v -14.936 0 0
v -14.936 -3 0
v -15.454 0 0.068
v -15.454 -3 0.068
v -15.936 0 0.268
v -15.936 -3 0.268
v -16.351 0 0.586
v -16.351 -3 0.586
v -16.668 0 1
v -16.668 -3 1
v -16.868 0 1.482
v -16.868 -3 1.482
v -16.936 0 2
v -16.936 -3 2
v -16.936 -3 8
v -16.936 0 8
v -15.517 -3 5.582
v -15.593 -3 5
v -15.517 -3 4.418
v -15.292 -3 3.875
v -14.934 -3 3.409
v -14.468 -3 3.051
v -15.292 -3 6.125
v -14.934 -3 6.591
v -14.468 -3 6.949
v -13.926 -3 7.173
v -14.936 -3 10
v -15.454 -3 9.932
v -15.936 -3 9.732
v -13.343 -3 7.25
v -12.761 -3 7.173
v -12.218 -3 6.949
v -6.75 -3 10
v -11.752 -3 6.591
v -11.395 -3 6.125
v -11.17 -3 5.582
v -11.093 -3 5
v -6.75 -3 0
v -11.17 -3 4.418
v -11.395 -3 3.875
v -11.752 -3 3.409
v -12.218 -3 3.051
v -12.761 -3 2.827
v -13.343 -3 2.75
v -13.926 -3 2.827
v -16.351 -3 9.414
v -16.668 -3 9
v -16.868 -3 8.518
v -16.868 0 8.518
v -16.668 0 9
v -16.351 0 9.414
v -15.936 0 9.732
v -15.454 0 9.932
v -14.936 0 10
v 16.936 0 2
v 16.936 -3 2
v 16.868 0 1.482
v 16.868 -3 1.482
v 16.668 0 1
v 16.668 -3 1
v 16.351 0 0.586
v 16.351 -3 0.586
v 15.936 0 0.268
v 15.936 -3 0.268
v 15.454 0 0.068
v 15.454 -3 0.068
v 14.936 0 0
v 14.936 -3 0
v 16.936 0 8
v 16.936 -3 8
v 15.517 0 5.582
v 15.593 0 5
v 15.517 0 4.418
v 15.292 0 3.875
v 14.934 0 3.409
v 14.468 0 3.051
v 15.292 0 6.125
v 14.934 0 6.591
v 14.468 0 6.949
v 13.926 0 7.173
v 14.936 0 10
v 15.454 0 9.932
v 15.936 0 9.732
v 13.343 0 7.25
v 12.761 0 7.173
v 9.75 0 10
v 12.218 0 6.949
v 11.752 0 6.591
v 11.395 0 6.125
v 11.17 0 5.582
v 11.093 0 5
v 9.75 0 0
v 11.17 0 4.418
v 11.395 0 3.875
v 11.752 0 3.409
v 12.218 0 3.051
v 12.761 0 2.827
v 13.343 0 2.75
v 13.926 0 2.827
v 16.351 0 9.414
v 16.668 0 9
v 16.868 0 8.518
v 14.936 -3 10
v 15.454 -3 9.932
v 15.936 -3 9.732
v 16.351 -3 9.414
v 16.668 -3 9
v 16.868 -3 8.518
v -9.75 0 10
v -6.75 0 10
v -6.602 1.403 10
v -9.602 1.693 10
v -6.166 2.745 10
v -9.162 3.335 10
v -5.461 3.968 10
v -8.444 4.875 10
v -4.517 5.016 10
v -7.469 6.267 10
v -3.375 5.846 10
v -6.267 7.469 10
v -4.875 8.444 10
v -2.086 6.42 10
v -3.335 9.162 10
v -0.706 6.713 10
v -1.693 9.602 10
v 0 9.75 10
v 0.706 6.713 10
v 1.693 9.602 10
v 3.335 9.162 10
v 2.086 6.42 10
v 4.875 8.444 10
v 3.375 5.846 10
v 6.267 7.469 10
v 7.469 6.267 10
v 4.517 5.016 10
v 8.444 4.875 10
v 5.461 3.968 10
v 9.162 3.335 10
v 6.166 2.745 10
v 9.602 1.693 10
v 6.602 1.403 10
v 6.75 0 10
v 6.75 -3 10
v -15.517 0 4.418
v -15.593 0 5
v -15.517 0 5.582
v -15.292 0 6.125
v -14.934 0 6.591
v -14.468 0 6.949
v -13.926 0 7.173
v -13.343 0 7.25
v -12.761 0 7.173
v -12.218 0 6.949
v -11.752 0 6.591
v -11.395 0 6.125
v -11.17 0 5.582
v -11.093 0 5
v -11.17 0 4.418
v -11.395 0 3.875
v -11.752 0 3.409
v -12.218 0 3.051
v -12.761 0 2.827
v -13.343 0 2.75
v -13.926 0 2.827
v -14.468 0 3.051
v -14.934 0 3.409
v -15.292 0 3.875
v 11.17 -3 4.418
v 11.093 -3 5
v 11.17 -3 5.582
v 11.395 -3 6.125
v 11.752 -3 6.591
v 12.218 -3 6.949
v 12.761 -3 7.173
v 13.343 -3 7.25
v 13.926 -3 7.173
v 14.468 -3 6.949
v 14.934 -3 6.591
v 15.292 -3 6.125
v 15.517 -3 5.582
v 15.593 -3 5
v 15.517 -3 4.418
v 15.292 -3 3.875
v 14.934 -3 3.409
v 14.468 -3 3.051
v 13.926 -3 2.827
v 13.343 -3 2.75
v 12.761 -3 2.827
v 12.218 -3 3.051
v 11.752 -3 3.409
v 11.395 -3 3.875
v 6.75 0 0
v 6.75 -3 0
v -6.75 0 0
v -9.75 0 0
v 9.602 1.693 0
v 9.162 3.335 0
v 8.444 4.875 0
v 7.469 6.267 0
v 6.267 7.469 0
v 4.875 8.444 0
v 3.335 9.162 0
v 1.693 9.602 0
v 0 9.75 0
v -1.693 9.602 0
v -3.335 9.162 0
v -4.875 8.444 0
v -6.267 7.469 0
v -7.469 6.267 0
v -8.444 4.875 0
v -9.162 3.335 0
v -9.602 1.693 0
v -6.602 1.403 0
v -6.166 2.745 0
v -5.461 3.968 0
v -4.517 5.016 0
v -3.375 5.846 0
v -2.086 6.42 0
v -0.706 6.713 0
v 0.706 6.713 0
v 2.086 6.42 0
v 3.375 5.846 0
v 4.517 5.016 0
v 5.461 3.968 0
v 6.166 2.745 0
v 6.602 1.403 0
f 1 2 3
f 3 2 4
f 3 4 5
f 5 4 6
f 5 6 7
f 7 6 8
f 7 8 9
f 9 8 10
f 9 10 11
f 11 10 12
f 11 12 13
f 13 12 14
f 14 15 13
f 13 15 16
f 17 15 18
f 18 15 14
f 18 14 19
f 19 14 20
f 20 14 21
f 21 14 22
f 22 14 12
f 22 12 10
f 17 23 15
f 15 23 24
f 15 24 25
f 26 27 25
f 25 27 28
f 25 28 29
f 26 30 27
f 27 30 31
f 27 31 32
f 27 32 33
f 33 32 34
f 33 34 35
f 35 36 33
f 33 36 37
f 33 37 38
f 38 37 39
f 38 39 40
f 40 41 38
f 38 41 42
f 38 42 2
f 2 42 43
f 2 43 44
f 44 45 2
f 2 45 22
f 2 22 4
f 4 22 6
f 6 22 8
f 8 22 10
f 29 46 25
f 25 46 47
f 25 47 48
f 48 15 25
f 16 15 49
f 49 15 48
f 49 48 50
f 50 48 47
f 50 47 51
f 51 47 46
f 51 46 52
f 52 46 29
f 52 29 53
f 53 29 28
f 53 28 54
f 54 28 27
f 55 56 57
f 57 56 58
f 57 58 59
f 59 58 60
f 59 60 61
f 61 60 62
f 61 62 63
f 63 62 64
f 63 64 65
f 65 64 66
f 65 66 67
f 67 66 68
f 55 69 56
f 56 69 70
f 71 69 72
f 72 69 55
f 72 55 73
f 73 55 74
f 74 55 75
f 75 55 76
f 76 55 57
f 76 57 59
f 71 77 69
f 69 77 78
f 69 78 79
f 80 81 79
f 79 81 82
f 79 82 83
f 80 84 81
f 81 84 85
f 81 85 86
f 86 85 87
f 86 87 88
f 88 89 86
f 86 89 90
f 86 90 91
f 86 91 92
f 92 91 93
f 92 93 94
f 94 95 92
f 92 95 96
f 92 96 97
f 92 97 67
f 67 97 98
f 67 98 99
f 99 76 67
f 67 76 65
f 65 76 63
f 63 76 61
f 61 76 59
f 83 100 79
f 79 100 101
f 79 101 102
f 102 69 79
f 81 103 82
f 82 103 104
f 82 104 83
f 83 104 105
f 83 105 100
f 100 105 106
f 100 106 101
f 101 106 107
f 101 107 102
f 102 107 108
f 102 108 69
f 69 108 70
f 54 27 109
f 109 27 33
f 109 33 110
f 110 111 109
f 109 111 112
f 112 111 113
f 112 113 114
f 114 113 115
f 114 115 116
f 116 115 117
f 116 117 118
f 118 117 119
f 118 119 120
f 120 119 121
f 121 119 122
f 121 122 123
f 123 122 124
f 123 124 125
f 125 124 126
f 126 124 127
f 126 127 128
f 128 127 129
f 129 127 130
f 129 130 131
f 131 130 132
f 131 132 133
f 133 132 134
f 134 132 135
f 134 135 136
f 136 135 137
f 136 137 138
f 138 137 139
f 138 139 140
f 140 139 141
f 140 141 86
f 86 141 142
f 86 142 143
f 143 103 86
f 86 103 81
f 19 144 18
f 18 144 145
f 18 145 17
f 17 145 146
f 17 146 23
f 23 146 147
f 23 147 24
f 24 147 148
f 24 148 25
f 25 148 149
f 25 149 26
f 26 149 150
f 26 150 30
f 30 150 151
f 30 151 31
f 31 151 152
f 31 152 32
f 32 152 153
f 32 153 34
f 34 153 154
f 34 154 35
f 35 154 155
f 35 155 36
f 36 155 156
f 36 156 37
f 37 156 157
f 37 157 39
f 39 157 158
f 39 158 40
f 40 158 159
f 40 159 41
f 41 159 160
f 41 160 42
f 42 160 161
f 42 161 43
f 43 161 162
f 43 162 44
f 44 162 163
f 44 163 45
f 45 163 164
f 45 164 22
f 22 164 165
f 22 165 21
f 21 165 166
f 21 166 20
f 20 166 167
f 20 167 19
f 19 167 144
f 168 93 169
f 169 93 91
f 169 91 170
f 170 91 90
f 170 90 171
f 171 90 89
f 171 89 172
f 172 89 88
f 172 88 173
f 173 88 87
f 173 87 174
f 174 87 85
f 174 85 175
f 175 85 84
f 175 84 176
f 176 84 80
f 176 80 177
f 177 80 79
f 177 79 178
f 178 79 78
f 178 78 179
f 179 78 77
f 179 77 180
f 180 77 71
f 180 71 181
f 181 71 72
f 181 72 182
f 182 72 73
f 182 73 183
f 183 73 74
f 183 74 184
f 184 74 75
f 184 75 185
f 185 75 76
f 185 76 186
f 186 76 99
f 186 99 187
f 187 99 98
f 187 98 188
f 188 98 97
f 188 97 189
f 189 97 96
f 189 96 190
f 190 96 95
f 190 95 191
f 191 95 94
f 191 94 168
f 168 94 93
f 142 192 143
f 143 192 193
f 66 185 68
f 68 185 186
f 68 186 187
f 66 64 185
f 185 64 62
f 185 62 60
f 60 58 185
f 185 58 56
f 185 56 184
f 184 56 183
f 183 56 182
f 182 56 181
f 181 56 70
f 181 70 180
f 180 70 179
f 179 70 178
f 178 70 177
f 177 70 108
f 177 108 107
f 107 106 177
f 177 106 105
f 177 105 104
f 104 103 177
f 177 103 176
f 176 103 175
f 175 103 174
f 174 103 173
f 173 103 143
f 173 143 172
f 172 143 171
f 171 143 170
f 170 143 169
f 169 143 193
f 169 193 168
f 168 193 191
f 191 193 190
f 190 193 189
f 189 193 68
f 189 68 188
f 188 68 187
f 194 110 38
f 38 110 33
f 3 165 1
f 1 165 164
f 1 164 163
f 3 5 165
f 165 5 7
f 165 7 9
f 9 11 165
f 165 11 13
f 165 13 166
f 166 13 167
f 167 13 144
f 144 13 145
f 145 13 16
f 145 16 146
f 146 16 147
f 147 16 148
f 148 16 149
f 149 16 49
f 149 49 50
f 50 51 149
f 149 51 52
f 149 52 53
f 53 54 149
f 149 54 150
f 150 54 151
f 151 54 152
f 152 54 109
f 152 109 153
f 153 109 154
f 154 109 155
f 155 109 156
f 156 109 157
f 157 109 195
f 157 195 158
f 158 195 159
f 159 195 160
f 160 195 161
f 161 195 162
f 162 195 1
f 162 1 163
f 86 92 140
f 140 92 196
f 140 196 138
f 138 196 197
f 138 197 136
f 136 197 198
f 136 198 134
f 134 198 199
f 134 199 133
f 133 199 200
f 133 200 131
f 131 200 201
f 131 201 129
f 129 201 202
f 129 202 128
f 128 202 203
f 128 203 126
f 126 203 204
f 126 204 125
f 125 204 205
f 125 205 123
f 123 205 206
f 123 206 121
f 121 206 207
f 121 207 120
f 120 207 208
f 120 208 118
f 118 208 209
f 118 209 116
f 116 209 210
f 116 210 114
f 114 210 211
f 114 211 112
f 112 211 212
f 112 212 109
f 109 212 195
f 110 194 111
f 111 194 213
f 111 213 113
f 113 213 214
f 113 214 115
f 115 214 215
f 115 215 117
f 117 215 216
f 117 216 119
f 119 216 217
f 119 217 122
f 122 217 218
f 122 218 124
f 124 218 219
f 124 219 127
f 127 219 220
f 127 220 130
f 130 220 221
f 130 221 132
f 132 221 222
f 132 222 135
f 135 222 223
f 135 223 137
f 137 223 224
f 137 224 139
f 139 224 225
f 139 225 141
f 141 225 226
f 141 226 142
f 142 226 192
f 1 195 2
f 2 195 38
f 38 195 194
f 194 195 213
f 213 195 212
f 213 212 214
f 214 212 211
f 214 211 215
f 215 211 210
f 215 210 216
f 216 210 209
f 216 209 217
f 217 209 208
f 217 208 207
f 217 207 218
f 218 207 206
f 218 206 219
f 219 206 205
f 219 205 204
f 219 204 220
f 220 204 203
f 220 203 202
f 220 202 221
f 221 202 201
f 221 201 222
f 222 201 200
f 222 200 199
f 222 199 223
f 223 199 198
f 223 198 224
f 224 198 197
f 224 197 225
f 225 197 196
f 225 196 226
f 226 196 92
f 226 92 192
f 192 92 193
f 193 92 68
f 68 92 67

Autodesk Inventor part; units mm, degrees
ref_plane "YZ Plane" through (0, 0, 0) normal (1, 0, 0) x (0, 1, 0)
ref_plane "XZ Plane" through (0, 0, 0) normal (0, 1, 0) x (-1, 0, 0)
ref_plane "XY Plane" through (0, 0, 0) normal (0, 0, 1) x (1, 0, 0)
sketch "Sketch1" plane through (0, 0, 0) normal (0, 0, 1) x (1, 0, 0)
  arc A0 (6.75, 0) -> (-6.75, 0) centre (0, 0) ccw
  arc A1 (9.75, 0) -> (-9.75, 0) centre (0, 0) ccw
  line L0 (-6.75, 0) -> (-9.75, 0)
  line L1 (6.75, 0) -> (9.75, 0)
  dimension "d0" = 13.5
  dimension "d1" = 3
extrude "Extrusion1" add sketch "Sketch1" along normal blind 10
sketch "Sketch2" plane through (-9.75, 0, 0) normal (0, -1, 0) x (1, 0, 0)
  line L0 (3, 0) -> (3, 10) projected
  line L1 (3, 0) -> (-7.1864, 0)
  line L2 (-7.1864, 0) -> (-7.1864, 10)
  line L3 (-7.1864, 10) -> (3, 10)
  line L4 (3, 10) -> (3, 0)
  point P0 (9.75, 0)
  dimension "d14" = 10
extrude "Extrusion2" add sketch "Sketch2" along normal blind 3
ref_plane "Work Plane1" through (0, -3, 10) normal (1, 0, 0) x (0, 0, -1)
mirror "Mirror1" about plane through (0, -3, 10) normal (1, 0, 0) of "Extrusion2"
sketch "Sketch3" plane through (-9.75, 0, 0) normal (0, 1, 0) x (1, 0, 0)
  line L0 (0, -10) -> (19.5, -10) projected
  line L1 (-7.1864, 0) -> (3, 0) projected
  line L2 (9.75, 0) -> (9.75, -10)
  line L3 (3, -10) -> (16.5, -10) projected
  point P0 (-3.5932, -5)
  point P1 (23.0932, -5)
  dimension "d15" = 5
hole "Hole1" at (-13.3432, 0, 5) at (13.3432, 0, 5) direction (0, -1, 0) diameter 4.5 end through all
fillet "Fillet1" radius 2 4 edges at (16.9364, -1.5, 10) (16.9364, -1.5, 0) (-16.9364, -1.5, 10) (-16.9364, -1.5, 0)
properties part number "Eletronica - Trava cabo"
